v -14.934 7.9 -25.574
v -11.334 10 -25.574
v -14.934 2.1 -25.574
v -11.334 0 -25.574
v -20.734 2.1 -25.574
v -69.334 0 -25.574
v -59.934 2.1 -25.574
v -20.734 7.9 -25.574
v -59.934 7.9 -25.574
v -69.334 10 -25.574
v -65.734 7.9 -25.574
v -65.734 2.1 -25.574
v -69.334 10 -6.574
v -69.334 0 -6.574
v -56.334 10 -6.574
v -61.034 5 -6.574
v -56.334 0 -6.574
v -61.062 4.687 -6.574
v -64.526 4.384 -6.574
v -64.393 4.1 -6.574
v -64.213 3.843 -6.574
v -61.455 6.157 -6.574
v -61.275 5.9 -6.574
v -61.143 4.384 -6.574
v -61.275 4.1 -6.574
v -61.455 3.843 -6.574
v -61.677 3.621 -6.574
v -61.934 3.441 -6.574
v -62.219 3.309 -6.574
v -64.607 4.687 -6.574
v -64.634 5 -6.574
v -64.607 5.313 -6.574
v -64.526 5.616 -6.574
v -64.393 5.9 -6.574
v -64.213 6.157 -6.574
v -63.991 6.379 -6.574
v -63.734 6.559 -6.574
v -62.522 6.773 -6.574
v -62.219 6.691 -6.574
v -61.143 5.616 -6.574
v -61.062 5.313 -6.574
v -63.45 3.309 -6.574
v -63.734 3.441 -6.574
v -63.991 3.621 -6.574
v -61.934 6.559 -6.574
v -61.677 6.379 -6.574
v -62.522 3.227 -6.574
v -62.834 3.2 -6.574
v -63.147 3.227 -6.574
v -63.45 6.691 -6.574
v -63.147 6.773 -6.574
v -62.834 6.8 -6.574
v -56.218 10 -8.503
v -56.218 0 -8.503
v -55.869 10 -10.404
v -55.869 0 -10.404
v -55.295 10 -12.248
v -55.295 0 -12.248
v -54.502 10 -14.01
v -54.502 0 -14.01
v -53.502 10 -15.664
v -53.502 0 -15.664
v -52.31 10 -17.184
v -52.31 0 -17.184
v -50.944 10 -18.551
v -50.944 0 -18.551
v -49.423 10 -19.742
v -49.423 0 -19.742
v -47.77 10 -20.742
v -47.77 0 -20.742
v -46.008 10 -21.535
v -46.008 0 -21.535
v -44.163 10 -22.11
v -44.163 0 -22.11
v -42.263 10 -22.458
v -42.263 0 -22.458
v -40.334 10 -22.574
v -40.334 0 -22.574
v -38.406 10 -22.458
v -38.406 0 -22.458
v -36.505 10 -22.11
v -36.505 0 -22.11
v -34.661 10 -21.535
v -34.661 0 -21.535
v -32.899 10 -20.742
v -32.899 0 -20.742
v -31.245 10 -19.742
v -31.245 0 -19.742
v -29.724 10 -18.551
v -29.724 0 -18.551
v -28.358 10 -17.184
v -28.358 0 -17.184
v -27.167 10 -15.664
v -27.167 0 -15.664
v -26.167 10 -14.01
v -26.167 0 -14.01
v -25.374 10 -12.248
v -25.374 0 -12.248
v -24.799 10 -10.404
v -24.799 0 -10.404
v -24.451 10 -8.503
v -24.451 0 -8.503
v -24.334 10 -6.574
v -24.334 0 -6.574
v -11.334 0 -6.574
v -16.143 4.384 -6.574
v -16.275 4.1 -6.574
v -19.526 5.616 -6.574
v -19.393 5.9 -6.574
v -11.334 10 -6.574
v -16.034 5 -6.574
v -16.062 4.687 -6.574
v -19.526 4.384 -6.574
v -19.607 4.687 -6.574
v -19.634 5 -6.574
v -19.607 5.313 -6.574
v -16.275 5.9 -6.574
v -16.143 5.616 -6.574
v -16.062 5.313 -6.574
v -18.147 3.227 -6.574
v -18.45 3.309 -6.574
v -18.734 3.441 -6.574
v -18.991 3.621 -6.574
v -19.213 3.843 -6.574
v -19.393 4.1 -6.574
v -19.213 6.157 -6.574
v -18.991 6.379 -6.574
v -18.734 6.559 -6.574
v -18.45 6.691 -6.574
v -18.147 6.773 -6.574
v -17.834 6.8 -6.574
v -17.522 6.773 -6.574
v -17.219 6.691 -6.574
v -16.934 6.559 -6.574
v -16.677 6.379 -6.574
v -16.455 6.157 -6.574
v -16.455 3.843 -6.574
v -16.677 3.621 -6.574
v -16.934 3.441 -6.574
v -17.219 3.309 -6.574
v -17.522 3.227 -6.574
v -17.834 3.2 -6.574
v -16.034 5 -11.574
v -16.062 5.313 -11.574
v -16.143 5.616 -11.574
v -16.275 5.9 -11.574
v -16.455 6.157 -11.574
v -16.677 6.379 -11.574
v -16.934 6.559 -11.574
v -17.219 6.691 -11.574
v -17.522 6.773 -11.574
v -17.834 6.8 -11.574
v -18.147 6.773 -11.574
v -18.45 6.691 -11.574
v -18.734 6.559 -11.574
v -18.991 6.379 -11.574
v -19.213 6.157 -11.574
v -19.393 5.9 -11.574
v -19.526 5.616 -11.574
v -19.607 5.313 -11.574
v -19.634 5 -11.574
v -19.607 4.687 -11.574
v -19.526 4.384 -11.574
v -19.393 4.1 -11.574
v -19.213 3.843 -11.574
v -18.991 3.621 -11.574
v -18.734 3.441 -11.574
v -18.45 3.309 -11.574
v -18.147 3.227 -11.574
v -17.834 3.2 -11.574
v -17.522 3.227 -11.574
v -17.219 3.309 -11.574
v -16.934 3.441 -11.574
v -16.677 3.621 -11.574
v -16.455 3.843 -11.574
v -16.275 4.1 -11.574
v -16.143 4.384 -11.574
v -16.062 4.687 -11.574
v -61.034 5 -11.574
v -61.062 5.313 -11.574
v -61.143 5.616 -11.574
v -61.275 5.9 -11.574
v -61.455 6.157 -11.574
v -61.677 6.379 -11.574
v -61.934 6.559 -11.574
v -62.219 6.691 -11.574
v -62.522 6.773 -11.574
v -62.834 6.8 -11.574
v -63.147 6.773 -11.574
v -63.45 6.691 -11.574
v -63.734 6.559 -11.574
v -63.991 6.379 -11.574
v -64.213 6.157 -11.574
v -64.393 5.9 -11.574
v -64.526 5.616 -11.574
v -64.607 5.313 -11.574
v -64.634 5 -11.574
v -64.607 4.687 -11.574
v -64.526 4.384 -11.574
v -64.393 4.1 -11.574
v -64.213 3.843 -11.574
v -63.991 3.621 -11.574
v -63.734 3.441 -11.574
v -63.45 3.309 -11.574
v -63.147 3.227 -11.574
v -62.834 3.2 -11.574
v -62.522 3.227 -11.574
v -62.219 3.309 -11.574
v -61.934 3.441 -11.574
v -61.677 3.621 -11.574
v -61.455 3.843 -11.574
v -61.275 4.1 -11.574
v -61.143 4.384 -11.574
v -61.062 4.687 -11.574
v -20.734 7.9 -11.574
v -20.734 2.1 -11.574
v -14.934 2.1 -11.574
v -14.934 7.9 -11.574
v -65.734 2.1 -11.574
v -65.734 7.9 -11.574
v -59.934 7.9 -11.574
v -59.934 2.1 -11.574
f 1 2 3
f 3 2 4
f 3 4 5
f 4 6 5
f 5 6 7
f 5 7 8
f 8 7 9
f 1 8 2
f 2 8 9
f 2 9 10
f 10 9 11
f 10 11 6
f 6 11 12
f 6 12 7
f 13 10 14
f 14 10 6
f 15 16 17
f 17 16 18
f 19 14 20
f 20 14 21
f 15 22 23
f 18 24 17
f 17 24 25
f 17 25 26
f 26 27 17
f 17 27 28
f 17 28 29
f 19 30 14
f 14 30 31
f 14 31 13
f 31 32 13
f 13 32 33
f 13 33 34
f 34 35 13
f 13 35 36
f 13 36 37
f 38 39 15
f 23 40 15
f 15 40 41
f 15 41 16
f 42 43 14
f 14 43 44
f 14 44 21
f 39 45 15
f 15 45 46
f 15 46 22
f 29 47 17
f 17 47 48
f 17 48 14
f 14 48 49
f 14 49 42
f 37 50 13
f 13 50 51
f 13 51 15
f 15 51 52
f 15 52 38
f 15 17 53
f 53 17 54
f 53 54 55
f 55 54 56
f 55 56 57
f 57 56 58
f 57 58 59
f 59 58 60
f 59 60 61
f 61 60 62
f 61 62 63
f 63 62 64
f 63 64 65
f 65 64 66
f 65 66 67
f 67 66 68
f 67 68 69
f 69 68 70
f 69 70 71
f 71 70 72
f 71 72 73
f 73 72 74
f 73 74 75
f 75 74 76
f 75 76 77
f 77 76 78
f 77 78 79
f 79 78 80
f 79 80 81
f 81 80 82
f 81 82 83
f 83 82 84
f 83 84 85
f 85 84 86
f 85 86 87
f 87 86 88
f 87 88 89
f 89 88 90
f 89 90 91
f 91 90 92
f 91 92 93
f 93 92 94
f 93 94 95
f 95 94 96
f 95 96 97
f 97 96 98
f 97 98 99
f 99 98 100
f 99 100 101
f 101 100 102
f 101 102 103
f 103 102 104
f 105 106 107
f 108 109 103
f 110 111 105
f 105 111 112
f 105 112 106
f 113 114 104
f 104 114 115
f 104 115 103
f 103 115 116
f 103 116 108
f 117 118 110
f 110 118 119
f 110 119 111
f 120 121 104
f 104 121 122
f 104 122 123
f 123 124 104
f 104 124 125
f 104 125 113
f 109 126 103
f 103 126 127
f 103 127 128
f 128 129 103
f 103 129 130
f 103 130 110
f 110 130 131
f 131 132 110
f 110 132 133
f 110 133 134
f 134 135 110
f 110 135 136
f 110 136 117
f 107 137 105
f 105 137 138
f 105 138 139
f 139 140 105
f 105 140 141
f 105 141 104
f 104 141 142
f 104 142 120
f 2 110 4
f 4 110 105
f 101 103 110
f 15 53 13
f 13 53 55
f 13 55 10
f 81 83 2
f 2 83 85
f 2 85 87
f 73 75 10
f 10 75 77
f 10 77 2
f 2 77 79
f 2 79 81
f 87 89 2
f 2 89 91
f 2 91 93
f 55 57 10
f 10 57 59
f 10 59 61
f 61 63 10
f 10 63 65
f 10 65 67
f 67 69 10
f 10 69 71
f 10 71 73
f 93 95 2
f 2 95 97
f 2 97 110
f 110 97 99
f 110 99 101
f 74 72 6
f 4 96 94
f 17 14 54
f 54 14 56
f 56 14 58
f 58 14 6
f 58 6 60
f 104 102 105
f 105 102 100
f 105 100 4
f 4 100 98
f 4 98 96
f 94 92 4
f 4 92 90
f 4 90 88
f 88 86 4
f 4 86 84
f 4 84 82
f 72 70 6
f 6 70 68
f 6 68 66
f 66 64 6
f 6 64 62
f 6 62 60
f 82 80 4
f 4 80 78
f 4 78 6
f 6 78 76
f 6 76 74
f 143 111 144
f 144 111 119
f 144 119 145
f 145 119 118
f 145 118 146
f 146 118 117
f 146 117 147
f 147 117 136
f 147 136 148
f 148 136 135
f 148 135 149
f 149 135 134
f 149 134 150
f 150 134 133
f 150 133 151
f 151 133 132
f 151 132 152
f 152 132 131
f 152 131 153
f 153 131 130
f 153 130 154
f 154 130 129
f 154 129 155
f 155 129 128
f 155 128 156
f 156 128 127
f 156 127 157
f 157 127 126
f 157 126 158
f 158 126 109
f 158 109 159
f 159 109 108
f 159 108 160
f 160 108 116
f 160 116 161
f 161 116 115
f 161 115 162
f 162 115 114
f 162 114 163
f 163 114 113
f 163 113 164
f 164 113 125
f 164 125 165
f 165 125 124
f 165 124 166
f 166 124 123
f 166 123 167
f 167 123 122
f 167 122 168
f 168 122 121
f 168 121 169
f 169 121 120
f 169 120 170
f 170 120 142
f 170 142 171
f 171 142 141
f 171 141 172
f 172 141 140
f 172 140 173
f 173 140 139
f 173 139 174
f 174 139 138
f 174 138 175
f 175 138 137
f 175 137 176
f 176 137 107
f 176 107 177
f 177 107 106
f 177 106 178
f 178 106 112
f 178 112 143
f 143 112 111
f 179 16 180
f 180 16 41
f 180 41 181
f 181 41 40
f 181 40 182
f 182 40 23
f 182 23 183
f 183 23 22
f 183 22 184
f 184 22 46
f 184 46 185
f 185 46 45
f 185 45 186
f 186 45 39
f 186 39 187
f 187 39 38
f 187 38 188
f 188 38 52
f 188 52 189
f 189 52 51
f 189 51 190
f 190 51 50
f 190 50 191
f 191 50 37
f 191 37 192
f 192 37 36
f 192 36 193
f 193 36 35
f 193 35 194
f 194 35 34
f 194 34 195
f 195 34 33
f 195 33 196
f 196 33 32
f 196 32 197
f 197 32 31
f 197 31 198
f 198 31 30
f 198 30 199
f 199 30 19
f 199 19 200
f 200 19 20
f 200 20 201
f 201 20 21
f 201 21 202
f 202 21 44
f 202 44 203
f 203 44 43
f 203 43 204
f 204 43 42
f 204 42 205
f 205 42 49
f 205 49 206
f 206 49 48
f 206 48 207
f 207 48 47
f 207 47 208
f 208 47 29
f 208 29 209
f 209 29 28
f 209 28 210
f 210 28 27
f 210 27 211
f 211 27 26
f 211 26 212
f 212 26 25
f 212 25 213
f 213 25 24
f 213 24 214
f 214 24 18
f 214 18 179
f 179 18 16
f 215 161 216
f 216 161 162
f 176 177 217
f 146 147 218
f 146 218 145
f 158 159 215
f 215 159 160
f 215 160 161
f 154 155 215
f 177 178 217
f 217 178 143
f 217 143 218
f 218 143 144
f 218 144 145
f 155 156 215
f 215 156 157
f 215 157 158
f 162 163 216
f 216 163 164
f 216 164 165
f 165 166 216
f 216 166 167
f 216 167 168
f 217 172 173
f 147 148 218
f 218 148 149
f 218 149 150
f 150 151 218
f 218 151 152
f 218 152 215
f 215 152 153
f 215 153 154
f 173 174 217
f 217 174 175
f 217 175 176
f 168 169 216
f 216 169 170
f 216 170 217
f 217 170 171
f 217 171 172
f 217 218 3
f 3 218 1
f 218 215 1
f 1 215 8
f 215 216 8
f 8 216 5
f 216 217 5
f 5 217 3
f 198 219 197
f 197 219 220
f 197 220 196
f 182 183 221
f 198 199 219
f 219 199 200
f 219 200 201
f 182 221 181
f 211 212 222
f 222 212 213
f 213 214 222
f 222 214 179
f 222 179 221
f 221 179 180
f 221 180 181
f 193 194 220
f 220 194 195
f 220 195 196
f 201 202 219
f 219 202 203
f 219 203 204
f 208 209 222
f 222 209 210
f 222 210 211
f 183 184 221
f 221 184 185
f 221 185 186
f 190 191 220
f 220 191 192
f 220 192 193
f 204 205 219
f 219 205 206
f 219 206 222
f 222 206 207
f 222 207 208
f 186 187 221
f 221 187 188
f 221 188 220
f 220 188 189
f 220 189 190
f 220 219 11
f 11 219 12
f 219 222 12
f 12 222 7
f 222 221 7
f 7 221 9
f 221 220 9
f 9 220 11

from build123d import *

# Parameters (mm, degrees)
EXTRUDE_2_DEPTH     = 10
SKETCH_8_R          = 1.8
CUT_EXTRUDE_3_DEPTH = 5
SKETCH_9_W          = 5.8
SKETCH_9_H          = 5.8
CUT_EXTRUDE_4_DEPTH = 14


with BuildPart() as part:
    # 草图1 → 凸台-拉伸2 (new body)
    with BuildSketch(Plane(origin=(0, 0, 0), x_dir=(1, 0, 0), z_dir=(0, 1, 0))):
        with BuildLine():
            Line((-69.33427814, 6.574466706), (-56.33427814, 6.574466706))
            ThreePointArc((-56.33427814, 6.574466706), (-40.33427814, 22.574466706), (-24.33427814, 6.574466706))
            Line((-24.33427814, 6.574466706), (-11.33427814, 6.574466706))
            Line((-11.33427814, 6.574466706), (-11.33427814, 25.574466706))
            Line((-11.33427814, 25.574466706), (-69.33427814, 25.574466706))
            Line((-69.33427814, 25.574466706), (-69.33427814, 6.574466706))
        make_face()
    extrude(amount=EXTRUDE_2_DEPTH)

    # 草图8 → 切除-拉伸3 (cut)
    with BuildSketch(Plane.XY.offset(-6.574466706)):
        with Locations((-62.83427814, 5)):
            Circle(SKETCH_8_R)
        with Locations((-17.83427814, 5)):
            Circle(SKETCH_8_R)
    extrude(amount=-CUT_EXTRUDE_3_DEPTH, mode=Mode.SUBTRACT)

    # 草图9 → 切除-拉伸4 (cut)
    with BuildSketch(Plane(origin=(0, 0, -25.574466706), x_dir=(-1, 0, 0), z_dir=(0, 0, -1))):
        with Locations((17.83427814, 5)):
            Rectangle(SKETCH_9_W, SKETCH_9_H)
        with Locations((62.83427814, 5)):
            Rectangle(SKETCH_9_W, SKETCH_9_H)
    extrude(amount=-CUT_EXTRUDE_4_DEPTH, mode=Mode.SUBTRACT)


solid = part.part
